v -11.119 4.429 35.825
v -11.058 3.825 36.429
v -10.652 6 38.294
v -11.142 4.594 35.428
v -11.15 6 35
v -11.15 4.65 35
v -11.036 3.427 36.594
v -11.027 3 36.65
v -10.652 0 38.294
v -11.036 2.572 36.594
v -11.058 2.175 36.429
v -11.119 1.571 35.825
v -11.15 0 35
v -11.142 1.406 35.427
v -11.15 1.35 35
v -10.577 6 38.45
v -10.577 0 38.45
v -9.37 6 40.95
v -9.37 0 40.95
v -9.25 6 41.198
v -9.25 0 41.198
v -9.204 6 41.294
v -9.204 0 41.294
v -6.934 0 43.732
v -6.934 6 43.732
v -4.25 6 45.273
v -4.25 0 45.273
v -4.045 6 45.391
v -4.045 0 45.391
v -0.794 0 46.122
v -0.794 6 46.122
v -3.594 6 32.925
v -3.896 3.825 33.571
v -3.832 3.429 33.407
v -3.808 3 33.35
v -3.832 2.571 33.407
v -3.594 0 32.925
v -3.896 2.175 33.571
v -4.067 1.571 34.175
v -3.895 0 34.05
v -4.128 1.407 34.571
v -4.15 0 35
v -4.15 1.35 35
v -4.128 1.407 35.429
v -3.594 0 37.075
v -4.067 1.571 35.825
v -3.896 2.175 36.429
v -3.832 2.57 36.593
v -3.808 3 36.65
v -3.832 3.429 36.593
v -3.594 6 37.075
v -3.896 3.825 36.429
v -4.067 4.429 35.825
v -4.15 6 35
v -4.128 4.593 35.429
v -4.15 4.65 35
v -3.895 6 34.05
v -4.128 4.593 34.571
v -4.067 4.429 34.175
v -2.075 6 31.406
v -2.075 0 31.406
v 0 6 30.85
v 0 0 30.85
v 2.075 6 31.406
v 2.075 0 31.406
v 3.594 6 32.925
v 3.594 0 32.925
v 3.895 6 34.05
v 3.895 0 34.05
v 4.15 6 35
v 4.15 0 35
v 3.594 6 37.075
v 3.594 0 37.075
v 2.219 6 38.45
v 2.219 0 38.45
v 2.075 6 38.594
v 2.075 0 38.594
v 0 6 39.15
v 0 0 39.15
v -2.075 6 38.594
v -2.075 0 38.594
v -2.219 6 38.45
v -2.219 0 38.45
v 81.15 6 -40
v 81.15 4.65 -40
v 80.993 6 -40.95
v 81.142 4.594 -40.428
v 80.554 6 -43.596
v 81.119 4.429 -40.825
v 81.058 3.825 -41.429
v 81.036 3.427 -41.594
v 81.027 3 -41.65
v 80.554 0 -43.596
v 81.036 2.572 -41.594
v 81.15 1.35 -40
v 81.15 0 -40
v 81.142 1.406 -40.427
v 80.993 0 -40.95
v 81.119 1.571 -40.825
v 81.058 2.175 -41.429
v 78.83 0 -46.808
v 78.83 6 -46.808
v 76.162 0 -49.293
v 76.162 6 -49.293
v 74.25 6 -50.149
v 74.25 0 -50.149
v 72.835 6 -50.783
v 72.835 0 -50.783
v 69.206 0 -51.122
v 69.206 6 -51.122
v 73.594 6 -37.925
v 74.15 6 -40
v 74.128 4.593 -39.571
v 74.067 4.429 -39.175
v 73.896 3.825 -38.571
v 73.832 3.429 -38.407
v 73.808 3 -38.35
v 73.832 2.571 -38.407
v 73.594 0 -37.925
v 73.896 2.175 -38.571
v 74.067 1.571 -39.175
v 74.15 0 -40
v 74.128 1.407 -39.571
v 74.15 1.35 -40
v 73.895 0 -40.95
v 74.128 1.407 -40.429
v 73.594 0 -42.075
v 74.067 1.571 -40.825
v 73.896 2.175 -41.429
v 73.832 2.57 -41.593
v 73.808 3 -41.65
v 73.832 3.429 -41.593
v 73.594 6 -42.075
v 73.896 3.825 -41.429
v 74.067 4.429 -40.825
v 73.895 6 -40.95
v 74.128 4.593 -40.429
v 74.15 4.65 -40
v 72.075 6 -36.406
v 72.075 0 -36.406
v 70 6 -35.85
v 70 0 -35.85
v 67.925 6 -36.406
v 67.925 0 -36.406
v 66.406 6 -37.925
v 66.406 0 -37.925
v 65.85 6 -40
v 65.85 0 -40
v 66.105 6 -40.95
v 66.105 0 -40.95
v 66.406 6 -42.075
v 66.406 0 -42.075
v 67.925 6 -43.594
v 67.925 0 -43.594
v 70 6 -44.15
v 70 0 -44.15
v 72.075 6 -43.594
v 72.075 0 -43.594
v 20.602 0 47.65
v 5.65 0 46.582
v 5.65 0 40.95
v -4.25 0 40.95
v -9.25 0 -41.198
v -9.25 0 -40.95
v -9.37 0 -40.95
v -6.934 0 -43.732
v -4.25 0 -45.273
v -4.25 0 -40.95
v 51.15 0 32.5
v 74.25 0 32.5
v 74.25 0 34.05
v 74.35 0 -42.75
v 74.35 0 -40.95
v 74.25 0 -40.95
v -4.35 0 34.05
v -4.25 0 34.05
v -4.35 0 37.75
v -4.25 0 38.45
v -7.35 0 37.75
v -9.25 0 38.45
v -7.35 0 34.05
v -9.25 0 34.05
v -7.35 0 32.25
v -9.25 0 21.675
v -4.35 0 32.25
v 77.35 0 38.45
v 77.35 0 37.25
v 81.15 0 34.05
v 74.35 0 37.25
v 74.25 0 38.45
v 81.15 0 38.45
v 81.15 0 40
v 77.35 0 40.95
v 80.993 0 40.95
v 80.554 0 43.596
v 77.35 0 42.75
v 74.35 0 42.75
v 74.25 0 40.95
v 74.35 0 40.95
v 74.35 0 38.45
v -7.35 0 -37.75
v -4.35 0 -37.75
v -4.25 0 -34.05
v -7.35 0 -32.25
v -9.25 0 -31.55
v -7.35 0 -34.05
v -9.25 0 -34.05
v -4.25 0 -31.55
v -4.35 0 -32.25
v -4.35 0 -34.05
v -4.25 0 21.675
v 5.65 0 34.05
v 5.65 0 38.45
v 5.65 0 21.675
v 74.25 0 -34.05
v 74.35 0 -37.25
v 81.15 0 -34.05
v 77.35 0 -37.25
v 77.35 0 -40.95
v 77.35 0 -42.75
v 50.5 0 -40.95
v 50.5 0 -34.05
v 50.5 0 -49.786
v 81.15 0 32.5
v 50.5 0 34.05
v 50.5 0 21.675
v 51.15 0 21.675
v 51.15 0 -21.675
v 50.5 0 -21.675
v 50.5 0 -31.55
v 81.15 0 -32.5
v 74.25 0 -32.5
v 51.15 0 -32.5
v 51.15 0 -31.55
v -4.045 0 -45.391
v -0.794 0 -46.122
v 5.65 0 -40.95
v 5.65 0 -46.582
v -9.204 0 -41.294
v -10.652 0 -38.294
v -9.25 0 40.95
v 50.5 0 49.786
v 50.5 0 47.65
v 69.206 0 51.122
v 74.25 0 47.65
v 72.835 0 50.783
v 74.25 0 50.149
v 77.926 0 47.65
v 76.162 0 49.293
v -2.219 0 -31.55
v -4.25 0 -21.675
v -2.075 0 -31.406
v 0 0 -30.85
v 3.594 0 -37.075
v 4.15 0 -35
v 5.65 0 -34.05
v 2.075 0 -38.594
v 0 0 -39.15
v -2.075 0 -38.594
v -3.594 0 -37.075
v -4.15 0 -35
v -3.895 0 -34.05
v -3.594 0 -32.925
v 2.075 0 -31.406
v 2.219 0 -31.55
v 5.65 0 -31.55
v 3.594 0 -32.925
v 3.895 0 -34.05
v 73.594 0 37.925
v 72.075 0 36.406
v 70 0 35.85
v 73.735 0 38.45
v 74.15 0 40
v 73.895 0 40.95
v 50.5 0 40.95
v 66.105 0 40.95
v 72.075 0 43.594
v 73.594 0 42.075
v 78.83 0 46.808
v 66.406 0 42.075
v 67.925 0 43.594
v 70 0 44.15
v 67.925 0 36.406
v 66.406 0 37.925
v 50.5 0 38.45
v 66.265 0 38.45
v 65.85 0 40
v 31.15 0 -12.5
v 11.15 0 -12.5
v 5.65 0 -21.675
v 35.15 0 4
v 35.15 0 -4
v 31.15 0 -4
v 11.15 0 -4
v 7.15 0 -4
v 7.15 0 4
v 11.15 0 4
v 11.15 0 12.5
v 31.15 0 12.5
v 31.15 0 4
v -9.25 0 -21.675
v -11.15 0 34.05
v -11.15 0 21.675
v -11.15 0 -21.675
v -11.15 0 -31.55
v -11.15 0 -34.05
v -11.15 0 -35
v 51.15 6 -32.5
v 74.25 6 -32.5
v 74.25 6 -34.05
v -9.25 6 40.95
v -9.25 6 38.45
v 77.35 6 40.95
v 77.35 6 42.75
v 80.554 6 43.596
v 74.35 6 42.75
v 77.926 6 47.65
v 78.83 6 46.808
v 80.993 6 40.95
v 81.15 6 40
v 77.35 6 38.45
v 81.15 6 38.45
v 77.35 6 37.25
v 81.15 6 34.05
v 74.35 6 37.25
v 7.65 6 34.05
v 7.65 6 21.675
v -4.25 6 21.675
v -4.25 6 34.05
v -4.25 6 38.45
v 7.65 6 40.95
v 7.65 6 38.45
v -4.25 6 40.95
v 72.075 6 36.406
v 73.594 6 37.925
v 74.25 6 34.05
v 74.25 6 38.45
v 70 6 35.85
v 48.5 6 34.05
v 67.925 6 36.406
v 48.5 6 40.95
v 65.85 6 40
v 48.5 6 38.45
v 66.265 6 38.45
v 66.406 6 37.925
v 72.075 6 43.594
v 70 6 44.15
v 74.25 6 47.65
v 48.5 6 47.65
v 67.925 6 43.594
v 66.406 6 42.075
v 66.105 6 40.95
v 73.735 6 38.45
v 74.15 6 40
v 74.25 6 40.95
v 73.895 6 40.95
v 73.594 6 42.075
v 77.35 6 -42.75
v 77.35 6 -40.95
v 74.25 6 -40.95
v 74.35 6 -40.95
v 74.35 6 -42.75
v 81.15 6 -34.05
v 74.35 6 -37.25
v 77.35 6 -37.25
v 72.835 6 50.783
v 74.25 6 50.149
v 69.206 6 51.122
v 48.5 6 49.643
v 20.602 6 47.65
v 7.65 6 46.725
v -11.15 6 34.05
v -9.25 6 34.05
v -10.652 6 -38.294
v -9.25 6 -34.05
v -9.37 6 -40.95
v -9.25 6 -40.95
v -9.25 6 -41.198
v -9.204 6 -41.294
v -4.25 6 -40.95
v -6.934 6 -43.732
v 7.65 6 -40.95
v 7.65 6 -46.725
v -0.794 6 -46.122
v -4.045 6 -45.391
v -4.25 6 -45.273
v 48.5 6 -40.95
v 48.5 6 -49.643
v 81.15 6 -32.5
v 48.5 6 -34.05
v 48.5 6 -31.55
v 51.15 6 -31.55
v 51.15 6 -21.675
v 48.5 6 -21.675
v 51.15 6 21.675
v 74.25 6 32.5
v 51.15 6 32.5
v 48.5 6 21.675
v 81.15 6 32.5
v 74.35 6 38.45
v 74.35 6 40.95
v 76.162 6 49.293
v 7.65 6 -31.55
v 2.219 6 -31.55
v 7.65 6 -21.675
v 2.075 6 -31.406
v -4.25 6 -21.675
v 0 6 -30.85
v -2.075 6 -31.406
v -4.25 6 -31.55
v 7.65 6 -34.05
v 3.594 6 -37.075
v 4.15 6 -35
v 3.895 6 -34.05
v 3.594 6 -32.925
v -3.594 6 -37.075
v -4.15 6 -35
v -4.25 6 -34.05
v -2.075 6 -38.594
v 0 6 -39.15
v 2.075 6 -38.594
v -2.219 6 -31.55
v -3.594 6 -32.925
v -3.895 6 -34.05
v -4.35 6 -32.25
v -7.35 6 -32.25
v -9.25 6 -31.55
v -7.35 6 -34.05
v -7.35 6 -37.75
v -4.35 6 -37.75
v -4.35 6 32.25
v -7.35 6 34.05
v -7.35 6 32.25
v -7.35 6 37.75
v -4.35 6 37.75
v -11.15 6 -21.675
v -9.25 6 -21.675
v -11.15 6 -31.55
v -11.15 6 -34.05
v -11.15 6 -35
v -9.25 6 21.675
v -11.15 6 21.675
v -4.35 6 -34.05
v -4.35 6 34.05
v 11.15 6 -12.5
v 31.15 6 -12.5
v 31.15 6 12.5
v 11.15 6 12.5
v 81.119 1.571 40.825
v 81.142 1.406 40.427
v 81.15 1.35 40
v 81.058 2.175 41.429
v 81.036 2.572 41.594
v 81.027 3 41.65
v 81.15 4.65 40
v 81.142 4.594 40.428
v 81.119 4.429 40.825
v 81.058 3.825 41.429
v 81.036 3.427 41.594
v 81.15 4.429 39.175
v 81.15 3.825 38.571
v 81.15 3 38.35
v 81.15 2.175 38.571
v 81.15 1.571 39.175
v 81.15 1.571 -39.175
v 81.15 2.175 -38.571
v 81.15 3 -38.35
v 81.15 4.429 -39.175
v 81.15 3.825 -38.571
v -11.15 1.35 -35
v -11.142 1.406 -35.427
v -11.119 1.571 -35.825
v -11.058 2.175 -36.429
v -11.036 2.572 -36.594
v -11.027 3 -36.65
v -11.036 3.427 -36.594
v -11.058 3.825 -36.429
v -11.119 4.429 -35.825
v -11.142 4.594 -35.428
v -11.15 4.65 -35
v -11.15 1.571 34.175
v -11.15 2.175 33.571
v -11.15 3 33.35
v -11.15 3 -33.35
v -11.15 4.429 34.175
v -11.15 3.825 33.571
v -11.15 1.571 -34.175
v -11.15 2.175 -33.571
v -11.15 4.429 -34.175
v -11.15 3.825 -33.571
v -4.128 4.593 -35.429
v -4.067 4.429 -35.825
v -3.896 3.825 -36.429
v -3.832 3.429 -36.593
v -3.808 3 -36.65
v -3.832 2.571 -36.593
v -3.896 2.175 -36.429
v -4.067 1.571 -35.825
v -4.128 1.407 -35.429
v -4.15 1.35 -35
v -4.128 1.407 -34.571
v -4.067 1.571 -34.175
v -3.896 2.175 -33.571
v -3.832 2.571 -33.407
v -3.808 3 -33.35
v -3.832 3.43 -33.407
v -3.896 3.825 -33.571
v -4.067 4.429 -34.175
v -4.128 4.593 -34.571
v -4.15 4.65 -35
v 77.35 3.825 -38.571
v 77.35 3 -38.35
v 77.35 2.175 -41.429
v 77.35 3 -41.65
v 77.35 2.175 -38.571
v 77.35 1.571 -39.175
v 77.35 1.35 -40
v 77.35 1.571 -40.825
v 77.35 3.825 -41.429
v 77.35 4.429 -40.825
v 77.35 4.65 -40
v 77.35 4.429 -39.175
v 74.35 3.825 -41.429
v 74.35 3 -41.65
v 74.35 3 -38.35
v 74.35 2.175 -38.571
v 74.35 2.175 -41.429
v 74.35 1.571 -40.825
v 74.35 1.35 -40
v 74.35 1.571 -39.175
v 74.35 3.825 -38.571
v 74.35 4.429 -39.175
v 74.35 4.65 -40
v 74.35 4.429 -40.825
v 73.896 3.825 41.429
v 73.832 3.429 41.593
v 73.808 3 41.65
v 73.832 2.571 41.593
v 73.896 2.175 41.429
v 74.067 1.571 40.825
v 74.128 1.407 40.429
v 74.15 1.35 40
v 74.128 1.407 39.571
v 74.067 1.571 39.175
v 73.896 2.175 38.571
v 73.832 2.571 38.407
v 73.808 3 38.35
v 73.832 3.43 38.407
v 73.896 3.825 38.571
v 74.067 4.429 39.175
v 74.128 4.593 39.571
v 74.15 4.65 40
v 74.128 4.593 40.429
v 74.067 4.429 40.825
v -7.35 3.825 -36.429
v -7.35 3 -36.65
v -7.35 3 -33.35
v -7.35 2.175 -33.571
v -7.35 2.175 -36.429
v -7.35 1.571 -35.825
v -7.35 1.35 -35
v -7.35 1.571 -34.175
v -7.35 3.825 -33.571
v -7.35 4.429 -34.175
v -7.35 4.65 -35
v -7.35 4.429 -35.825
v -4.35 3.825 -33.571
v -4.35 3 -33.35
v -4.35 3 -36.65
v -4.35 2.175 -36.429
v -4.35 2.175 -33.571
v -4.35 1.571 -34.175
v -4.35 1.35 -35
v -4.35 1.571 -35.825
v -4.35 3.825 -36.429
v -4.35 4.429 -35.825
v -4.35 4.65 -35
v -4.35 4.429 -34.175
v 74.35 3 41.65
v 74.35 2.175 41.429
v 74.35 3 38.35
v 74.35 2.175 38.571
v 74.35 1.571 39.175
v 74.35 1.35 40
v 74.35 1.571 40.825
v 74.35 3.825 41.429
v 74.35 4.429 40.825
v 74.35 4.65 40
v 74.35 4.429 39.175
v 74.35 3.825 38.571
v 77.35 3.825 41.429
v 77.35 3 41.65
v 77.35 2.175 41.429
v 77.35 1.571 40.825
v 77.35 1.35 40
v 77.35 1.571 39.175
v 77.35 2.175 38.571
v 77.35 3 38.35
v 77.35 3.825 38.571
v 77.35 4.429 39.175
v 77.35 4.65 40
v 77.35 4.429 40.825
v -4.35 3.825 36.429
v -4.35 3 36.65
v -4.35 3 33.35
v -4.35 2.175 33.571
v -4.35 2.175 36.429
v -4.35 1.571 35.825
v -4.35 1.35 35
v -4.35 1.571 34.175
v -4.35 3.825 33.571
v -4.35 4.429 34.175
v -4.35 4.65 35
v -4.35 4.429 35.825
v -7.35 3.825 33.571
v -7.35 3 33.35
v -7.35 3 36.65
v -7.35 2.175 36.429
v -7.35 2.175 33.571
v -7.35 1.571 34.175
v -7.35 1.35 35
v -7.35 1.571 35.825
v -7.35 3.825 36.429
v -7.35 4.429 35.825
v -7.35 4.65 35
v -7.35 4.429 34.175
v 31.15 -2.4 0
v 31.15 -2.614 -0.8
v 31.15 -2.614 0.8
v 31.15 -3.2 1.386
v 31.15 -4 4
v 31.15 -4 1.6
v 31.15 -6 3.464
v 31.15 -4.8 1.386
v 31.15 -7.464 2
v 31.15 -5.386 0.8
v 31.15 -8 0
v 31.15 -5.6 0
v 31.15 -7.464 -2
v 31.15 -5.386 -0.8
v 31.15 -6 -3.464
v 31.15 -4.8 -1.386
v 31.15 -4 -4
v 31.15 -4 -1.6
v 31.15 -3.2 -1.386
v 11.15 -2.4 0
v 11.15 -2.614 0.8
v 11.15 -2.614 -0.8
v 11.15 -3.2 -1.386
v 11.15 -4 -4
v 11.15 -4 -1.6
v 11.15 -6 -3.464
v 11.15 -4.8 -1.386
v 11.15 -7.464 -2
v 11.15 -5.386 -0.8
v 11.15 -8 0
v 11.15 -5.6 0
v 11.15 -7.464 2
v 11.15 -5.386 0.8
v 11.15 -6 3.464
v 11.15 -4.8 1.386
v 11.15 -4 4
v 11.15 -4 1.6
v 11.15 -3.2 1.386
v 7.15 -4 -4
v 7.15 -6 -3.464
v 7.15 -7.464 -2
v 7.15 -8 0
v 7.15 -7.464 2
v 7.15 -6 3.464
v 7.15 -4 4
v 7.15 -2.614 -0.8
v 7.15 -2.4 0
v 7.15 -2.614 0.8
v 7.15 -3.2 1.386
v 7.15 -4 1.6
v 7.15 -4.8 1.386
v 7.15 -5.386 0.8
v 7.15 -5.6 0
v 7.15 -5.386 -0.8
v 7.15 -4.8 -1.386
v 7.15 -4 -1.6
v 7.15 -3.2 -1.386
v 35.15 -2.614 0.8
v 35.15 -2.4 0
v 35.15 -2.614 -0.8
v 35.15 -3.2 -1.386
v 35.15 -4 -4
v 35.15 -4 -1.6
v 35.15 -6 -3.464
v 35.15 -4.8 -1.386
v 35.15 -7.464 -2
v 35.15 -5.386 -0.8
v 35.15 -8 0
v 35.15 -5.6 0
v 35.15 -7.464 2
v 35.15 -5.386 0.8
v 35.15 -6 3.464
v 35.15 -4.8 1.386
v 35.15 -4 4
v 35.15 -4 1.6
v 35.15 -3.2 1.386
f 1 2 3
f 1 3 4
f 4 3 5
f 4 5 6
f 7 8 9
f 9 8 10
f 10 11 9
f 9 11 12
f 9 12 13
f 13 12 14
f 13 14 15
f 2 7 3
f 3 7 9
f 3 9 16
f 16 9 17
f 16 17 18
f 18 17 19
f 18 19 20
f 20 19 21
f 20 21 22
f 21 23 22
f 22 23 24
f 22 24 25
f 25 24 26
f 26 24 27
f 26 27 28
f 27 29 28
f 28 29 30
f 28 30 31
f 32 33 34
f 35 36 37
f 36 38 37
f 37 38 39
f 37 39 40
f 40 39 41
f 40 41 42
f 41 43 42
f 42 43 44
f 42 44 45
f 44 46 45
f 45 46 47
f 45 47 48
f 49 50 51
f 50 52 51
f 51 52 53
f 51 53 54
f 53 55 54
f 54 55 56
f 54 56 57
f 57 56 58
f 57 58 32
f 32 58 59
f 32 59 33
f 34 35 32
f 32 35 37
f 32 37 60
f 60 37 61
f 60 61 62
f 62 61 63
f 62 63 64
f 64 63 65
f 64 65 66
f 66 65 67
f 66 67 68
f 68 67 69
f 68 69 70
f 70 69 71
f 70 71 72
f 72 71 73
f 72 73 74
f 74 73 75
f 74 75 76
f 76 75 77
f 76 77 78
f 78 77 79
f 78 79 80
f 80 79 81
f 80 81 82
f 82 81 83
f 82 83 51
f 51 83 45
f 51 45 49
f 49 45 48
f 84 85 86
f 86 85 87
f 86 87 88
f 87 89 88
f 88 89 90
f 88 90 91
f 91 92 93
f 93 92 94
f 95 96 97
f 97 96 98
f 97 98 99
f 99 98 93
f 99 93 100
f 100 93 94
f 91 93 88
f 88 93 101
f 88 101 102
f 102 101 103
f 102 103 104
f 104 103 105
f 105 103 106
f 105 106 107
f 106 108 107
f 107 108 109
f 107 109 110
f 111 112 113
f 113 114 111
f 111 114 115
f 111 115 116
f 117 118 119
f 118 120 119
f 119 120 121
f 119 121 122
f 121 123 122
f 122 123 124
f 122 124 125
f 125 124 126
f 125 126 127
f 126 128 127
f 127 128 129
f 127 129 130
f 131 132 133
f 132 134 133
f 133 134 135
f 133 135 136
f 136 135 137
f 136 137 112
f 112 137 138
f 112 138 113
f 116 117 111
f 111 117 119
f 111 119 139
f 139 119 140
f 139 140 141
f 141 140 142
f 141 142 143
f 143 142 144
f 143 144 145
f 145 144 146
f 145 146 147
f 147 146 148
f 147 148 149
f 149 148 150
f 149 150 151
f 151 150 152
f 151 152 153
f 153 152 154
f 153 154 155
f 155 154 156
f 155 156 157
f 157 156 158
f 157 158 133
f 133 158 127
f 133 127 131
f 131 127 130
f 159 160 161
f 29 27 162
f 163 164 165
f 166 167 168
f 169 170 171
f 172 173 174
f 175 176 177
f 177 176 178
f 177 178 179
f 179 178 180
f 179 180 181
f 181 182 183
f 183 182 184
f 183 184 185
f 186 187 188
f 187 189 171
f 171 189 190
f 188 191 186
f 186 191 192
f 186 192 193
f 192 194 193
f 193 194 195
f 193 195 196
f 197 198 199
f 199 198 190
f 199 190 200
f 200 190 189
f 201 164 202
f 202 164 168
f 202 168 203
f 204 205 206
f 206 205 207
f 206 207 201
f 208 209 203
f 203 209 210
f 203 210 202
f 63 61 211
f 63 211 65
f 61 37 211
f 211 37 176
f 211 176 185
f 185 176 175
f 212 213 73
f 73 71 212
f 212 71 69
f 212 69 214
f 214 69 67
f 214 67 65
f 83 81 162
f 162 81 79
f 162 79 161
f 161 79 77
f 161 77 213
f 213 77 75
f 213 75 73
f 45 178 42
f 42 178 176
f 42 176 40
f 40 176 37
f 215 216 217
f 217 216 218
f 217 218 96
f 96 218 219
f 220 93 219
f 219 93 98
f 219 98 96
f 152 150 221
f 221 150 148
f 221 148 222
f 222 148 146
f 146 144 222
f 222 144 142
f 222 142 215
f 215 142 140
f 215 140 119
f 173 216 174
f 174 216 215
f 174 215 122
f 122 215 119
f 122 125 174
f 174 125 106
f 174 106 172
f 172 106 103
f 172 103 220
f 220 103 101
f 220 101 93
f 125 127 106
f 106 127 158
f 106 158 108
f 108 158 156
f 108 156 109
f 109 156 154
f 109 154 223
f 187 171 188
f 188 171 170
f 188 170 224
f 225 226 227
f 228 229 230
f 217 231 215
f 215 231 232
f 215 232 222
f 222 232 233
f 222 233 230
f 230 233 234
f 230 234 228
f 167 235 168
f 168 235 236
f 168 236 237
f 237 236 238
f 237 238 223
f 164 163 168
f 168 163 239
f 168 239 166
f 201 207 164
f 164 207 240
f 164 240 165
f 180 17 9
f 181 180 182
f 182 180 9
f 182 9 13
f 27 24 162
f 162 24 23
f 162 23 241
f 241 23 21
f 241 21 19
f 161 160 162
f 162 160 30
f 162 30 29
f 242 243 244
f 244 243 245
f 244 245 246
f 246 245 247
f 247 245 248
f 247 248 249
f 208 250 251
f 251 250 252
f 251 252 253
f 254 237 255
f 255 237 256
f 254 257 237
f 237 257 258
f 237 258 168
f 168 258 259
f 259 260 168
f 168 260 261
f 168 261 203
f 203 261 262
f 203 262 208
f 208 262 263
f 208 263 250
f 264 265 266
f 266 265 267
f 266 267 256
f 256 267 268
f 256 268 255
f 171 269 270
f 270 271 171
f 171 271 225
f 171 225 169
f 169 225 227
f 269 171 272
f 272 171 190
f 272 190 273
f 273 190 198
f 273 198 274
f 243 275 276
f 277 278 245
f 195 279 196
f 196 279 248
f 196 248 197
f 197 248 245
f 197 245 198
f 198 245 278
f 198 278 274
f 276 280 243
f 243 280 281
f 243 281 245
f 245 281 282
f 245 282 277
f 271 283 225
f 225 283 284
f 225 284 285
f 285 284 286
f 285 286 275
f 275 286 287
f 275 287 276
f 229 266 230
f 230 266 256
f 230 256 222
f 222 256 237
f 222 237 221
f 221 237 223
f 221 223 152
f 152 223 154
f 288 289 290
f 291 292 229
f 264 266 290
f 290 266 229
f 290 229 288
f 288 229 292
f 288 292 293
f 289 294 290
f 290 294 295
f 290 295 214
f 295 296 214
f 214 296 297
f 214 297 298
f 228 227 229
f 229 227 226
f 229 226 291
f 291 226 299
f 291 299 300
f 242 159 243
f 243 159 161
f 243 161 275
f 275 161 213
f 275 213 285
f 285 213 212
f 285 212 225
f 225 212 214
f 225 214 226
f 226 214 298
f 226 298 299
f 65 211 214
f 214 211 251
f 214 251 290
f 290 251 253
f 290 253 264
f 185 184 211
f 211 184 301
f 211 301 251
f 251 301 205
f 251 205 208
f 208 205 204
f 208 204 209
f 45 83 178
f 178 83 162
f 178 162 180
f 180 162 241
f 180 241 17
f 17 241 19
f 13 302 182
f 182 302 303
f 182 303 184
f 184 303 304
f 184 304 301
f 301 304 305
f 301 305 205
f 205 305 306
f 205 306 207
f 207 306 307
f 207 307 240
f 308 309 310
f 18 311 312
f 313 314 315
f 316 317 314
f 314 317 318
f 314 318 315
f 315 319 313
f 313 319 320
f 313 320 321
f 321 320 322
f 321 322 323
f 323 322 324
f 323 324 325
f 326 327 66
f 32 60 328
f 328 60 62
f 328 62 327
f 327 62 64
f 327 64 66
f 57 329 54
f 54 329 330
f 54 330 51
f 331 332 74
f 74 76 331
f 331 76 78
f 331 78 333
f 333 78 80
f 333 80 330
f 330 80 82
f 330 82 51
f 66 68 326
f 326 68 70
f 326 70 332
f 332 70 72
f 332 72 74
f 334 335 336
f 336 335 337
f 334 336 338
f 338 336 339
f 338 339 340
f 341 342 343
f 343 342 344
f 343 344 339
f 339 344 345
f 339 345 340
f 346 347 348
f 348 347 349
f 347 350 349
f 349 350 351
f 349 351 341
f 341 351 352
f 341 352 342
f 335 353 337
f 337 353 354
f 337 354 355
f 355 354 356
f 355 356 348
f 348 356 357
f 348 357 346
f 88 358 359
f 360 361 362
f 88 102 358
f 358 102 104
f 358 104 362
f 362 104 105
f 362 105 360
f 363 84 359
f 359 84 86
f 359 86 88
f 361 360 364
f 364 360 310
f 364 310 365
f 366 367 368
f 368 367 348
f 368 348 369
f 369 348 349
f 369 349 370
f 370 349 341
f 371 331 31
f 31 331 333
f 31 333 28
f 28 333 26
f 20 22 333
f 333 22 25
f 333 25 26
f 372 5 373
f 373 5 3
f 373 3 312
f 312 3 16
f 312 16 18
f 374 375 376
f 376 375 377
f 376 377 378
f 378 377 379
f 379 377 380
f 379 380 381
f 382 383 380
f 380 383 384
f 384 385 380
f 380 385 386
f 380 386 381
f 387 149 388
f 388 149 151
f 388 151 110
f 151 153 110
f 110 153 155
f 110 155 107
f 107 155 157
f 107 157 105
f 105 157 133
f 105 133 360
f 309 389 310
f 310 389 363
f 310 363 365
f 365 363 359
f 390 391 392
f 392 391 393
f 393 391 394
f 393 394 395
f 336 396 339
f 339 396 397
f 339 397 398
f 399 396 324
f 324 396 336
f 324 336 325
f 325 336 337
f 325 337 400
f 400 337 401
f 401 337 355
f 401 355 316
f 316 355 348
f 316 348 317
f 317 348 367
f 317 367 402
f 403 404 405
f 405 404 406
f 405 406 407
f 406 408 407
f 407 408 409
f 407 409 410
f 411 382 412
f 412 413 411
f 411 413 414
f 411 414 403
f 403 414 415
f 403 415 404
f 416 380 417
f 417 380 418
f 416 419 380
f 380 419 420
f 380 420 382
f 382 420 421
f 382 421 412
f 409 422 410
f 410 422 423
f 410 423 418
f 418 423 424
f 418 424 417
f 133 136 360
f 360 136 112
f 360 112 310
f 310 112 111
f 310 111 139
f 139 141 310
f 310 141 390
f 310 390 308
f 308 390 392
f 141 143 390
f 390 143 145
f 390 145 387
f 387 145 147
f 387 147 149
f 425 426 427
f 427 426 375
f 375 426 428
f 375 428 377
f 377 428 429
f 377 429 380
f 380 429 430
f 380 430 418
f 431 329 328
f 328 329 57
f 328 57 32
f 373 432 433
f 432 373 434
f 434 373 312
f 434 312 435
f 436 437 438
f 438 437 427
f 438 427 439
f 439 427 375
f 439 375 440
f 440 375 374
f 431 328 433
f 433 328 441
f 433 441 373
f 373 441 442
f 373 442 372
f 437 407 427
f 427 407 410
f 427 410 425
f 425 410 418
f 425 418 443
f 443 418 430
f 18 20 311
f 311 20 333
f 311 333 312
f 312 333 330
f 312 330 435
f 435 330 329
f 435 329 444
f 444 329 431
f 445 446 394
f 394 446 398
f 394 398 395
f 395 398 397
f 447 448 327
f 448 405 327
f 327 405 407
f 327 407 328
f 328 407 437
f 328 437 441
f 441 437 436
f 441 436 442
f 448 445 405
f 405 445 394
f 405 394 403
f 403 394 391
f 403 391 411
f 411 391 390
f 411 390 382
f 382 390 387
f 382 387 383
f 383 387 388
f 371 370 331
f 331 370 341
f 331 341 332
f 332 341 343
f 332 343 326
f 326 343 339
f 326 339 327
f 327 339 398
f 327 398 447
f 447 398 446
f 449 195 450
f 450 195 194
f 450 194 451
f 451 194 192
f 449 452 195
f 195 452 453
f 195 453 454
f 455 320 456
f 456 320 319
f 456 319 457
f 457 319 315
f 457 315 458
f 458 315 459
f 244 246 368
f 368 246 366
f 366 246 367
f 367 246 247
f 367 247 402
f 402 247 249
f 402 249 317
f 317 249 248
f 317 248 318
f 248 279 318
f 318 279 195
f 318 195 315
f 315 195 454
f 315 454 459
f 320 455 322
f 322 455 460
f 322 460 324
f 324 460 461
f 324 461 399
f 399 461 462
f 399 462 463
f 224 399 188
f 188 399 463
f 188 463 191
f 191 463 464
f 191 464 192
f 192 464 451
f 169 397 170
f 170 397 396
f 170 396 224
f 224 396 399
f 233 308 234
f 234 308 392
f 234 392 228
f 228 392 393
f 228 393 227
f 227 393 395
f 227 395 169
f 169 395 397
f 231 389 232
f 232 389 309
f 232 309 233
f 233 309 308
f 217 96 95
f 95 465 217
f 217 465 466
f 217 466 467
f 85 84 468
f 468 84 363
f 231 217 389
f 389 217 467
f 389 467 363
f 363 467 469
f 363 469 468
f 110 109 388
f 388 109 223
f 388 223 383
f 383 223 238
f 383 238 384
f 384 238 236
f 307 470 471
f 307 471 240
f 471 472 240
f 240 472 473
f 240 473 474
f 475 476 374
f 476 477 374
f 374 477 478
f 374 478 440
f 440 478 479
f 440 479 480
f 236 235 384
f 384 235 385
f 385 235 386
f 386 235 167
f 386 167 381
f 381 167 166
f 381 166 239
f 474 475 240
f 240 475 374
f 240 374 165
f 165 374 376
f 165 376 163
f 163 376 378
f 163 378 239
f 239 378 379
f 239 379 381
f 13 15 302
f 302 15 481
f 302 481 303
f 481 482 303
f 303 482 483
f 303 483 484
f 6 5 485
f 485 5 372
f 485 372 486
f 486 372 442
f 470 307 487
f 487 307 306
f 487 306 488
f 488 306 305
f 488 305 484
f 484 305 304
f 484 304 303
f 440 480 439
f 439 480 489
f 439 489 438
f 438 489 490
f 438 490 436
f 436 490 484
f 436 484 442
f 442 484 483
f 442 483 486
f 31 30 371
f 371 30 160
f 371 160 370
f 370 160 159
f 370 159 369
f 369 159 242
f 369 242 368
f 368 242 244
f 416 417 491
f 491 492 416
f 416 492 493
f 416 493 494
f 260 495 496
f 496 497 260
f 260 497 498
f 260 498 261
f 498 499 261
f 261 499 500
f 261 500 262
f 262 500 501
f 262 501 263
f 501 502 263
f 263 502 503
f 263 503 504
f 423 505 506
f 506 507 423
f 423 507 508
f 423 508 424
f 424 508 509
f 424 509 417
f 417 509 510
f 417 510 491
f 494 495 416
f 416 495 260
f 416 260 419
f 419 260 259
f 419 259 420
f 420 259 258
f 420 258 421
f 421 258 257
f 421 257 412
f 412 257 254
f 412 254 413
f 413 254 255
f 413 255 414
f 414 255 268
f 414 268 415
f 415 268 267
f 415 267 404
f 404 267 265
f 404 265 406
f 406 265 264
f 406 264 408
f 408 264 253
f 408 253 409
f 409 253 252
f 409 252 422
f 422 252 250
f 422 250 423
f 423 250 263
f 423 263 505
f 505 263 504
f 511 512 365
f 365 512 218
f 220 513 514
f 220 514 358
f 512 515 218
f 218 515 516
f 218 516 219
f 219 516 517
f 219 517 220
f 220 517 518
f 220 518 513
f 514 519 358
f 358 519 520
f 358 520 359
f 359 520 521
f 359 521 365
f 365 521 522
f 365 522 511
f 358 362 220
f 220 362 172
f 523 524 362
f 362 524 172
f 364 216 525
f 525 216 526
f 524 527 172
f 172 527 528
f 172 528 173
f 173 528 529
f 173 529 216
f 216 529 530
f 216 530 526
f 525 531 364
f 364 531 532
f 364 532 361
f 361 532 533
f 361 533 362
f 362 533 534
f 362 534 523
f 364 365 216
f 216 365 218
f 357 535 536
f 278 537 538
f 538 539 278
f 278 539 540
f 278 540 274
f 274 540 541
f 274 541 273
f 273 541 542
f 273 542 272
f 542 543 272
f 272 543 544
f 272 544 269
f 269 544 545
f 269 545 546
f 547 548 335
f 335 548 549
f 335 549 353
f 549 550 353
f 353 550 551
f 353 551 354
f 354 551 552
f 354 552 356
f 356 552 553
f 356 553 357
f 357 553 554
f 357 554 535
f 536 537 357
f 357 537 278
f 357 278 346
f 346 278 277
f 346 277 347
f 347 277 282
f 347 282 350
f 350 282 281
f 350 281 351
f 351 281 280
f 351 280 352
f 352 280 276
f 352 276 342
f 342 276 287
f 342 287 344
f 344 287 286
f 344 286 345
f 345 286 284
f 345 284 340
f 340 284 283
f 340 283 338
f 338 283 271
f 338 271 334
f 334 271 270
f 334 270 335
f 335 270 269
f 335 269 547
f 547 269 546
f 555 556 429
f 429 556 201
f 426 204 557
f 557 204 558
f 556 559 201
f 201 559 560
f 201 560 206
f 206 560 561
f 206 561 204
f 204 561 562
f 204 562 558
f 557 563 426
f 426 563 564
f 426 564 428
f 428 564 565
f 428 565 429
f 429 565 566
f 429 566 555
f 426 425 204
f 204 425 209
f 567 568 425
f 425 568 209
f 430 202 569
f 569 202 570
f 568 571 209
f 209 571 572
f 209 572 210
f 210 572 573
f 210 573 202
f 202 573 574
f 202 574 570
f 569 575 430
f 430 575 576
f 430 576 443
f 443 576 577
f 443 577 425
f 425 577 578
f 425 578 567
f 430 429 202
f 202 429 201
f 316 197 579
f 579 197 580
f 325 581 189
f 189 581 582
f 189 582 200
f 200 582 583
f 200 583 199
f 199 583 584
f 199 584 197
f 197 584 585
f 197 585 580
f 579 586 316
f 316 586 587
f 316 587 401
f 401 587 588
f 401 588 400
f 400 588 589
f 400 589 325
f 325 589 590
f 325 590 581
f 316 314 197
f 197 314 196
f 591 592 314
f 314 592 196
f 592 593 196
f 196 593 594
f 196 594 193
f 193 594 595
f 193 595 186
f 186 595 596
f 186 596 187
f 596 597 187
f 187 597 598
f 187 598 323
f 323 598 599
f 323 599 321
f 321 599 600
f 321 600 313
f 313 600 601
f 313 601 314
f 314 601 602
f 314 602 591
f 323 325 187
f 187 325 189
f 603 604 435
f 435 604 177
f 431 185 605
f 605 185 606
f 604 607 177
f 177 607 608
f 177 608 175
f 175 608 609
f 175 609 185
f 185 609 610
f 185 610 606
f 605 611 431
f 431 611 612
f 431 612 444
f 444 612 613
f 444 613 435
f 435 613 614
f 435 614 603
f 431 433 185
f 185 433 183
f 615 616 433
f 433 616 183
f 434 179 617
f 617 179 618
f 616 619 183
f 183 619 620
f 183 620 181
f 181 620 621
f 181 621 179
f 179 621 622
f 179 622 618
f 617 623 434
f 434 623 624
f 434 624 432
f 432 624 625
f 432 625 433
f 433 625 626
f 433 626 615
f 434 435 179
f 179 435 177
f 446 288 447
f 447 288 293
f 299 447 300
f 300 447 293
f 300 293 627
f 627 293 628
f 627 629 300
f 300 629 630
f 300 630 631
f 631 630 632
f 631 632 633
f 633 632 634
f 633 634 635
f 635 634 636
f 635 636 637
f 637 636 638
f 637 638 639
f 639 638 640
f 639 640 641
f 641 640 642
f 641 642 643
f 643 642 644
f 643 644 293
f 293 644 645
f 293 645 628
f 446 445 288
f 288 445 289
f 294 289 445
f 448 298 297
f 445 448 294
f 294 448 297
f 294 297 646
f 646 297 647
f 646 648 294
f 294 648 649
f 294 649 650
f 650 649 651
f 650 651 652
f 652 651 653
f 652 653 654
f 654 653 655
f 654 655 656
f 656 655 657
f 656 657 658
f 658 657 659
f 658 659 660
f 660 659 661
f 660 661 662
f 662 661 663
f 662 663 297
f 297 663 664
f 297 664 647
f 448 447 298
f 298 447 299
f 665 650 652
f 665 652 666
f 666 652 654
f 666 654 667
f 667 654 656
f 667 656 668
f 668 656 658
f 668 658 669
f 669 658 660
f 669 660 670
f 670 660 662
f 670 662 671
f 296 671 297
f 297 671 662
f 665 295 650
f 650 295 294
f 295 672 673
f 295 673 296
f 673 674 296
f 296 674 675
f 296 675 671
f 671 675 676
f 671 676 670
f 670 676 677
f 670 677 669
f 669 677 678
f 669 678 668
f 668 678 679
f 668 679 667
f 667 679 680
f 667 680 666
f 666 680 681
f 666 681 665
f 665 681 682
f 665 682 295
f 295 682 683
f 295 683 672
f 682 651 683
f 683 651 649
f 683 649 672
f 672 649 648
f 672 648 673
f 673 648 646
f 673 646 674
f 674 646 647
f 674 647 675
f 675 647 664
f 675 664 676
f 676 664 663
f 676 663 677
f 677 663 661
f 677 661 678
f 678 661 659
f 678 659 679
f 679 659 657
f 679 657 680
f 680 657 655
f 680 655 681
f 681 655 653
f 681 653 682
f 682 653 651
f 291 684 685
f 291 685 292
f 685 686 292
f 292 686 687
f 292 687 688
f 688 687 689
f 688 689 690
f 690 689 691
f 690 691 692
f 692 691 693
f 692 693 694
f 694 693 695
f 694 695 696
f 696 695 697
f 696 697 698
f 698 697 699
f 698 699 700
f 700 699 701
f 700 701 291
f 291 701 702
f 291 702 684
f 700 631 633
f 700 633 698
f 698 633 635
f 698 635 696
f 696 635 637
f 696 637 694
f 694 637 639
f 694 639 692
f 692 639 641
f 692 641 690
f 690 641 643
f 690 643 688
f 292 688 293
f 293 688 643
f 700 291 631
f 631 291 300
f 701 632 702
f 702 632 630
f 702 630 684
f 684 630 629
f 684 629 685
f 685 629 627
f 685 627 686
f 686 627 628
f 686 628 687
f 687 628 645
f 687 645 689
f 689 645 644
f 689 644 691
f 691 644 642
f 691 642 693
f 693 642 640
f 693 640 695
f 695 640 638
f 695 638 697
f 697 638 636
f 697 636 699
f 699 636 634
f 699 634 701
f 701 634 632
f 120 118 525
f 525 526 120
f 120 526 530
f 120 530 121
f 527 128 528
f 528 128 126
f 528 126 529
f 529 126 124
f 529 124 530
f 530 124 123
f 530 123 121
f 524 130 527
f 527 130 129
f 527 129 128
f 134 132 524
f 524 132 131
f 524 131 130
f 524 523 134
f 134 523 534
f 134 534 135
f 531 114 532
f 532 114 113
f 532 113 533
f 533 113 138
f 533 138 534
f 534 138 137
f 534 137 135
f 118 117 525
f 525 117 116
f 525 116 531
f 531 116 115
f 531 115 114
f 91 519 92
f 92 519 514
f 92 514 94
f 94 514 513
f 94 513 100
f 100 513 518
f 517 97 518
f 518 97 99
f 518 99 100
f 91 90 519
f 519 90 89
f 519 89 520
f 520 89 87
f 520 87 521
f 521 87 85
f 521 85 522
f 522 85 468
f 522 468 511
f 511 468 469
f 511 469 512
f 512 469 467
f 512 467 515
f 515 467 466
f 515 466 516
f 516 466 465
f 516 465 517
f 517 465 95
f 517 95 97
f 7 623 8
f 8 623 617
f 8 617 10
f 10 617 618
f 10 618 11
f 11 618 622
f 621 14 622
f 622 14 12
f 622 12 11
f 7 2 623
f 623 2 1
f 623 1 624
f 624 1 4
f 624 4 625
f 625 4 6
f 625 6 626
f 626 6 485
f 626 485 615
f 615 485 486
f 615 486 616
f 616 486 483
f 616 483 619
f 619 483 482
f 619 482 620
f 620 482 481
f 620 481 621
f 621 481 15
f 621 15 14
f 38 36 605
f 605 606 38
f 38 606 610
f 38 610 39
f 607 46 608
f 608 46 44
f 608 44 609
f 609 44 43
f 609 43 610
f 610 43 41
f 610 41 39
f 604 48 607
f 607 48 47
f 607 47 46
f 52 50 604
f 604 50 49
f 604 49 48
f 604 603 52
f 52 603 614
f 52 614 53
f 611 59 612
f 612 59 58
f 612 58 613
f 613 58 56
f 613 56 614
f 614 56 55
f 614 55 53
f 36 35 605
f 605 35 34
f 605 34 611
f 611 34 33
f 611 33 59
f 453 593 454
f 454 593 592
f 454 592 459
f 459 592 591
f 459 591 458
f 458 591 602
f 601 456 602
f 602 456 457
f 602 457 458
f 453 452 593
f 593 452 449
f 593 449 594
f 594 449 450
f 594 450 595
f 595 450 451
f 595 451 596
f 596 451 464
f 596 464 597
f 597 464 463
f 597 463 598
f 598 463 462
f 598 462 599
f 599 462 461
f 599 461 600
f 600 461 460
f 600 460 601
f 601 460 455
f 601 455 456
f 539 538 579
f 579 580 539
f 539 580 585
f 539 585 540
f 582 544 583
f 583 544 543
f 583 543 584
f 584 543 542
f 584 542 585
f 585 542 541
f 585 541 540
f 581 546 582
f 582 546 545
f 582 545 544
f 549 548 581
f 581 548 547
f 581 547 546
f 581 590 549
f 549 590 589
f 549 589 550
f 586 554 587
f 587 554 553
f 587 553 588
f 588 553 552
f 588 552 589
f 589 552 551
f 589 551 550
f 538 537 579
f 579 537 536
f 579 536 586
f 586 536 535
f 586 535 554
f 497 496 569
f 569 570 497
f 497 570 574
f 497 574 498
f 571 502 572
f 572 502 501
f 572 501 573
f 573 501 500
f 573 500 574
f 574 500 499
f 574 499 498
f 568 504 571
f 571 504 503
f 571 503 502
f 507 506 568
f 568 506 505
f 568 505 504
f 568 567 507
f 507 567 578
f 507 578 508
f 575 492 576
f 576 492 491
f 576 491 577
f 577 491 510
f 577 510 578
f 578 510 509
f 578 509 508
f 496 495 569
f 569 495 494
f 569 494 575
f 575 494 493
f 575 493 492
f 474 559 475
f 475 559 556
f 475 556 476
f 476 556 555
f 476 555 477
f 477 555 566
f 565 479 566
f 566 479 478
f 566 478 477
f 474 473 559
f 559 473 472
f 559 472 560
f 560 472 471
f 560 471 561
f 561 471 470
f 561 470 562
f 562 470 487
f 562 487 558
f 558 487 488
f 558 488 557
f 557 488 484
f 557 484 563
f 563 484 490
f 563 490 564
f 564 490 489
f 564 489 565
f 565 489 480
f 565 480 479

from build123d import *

# Parameters (mm, degrees)
ESBO_O2_R                = 4.15
ESBO_O2_W                = 3
ESBO_O2_H                = 5.5
ESBO_O2_W_2              = 20
ESBO_O2_H_2              = 25
RESSALTO_EXTRUS_O1_DEPTH = 6
ESBO_O4_R                = 1.6
RESSALTO_EXTRUS_O2_DEPTH = 4
RESSALTO_EXTRUS_O3_START = 20
ESBO_O4_2_R              = 1.6
RESSALTO_EXTRUS_O3_DEPTH = 4
CORTE_EXTRUS_O2_START    = -1
ESBO_O7_R                = 1.65
CORTE_EXTRUS_O2_DEPTH    = 8.8
CORTE_EXTRUS_O3_START    = -1
ESBO_O8_R                = 1.65
CORTE_EXTRUS_O3_DEPTH    = 8.8


with BuildPart() as part:
    # Esboço2 → Ressalto-extrusão1 (new body)
    with BuildSketch(Plane(origin=(0, 0, 0), x_dir=(1, 0, 0), z_dir=(0, 1, 0))):
        with BuildLine():
            Line((-0.794404607, 46.121664503), (69.205595393, 51.121664503))
            ThreePointArc((69.205595393, 51.121664503), (77.59818691, 48.160273015), (81.15, 40))
            Line((81.15, 40), (81.15, 32.5))
            Line((81.15, 32.5), (51.15, 32.5))
            Line((51.15, 32.5), (51.15, -32.5))
            Line((51.15, -32.5), (81.15, -32.5))
            Line((81.15, -32.5), (81.15, -40))
            ThreePointArc((81.15, -40), (77.59818691, -48.160273015), (69.205595393, -51.121664503))
            Line((69.205595393, -51.121664503), (-0.794404607, -46.121664503))
            ThreePointArc((-0.794404607, -46.121664503), (-8.160273015, -42.59818691), (-11.15, -35))
            Line((-11.15, -35), (-11.15, 35))
            ThreePointArc((-11.15, 35), (-8.160273015, 42.59818691), (-0.794404607, 46.121664503))
        make_face()
        with Locations((0, 35)):
            Circle(ESBO_O2_R, mode=Mode.SUBTRACT)
        with Locations((70, 40)):
            Circle(ESBO_O2_R, mode=Mode.SUBTRACT)
        with Locations((70, -40)):
            Circle(ESBO_O2_R, mode=Mode.SUBTRACT)
        with Locations((0, -35)):
            Circle(ESBO_O2_R, mode=Mode.SUBTRACT)
        with Locations((-5.85, 35)):
            Rectangle(ESBO_O2_W, ESBO_O2_H, mode=Mode.SUBTRACT)
        with Locations((75.85, 40)):
            Rectangle(ESBO_O2_W, ESBO_O2_H, mode=Mode.SUBTRACT)
        with Locations((75.85, -40)):
            Rectangle(ESBO_O2_W, ESBO_O2_H, mode=Mode.SUBTRACT)
        with Locations((-5.85, -35)):
            Rectangle(ESBO_O2_W, ESBO_O2_H, mode=Mode.SUBTRACT)
        with Locations((21.15, 0)):
            Rectangle(ESBO_O2_W_2, ESBO_O2_H_2, mode=Mode.SUBTRACT)
    extrude(amount=RESSALTO_EXTRUS_O1_DEPTH)

    # Esboço4 → Ressalto-extrusão2 (add)
    with BuildSketch(Plane(origin=(11.15, 0, 0), x_dir=(0, 0, -1), z_dir=(1, 0, 0))):
        with BuildLine():
            Line((-4, -4), (-4, 0))
            Line((-4, 0), (4, 0))
            Line((4, 0), (4, -4))
            ThreePointArc((4, -4), (0, -8), (-4, -4))
        make_face()
        with Locations((0, -4)):
            Circle(ESBO_O4_R, mode=Mode.SUBTRACT)
    extrude(amount=-RESSALTO_EXTRUS_O2_DEPTH)

    # Esboço4<2> → Ressalto-extrusão3 (add)
    with BuildSketch(Plane(origin=(11.15, 0, 0), x_dir=(0, 0, -1), z_dir=(1, 0, 0)).offset(RESSALTO_EXTRUS_O3_START)):
        with BuildLine():
            Line((-4, -4), (-4, 0))
            Line((-4, 0), (4, 0))
            Line((4, 0), (4, -4))
            ThreePointArc((4, -4), (0, -8), (-4, -4))
        make_face()
        with Locations((0, -4)):
            Circle(ESBO_O4_2_R, mode=Mode.SUBTRACT)
    extrude(amount=RESSALTO_EXTRUS_O3_DEPTH)

    # Esboço7 → Corte-extrusão2 (cut)
    with BuildSketch(Plane(origin=(74.35, 0, 0), x_dir=(0, 0, -1), z_dir=(1, 0, 0)).offset(CORTE_EXTRUS_O2_START)):
        with Locations((40, 3)):
            Circle(ESBO_O7_R)
    corte_extrus_o2 = extrude(amount=CORTE_EXTRUS_O2_DEPTH, mode=Mode.SUBTRACT)

    # Esboço8 → Corte-extrusão3 (cut)
    with BuildSketch(Plane.ZY.offset(4.35).offset(CORTE_EXTRUS_O3_START)):
        with Locations((35, 3)):
            Circle(ESBO_O8_R)
    corte_extrus_o3 = extrude(amount=CORTE_EXTRUS_O3_DEPTH, mode=Mode.SUBTRACT)

    # Espelhar1: Corte-extrusão2, Corte-extrusão3 across plane
    add(corte_extrus_o2.mirror(Plane.XY), mode=Mode.SUBTRACT)
    add(corte_extrus_o3.mirror(Plane.XY), mode=Mode.SUBTRACT)


solid = part.part
